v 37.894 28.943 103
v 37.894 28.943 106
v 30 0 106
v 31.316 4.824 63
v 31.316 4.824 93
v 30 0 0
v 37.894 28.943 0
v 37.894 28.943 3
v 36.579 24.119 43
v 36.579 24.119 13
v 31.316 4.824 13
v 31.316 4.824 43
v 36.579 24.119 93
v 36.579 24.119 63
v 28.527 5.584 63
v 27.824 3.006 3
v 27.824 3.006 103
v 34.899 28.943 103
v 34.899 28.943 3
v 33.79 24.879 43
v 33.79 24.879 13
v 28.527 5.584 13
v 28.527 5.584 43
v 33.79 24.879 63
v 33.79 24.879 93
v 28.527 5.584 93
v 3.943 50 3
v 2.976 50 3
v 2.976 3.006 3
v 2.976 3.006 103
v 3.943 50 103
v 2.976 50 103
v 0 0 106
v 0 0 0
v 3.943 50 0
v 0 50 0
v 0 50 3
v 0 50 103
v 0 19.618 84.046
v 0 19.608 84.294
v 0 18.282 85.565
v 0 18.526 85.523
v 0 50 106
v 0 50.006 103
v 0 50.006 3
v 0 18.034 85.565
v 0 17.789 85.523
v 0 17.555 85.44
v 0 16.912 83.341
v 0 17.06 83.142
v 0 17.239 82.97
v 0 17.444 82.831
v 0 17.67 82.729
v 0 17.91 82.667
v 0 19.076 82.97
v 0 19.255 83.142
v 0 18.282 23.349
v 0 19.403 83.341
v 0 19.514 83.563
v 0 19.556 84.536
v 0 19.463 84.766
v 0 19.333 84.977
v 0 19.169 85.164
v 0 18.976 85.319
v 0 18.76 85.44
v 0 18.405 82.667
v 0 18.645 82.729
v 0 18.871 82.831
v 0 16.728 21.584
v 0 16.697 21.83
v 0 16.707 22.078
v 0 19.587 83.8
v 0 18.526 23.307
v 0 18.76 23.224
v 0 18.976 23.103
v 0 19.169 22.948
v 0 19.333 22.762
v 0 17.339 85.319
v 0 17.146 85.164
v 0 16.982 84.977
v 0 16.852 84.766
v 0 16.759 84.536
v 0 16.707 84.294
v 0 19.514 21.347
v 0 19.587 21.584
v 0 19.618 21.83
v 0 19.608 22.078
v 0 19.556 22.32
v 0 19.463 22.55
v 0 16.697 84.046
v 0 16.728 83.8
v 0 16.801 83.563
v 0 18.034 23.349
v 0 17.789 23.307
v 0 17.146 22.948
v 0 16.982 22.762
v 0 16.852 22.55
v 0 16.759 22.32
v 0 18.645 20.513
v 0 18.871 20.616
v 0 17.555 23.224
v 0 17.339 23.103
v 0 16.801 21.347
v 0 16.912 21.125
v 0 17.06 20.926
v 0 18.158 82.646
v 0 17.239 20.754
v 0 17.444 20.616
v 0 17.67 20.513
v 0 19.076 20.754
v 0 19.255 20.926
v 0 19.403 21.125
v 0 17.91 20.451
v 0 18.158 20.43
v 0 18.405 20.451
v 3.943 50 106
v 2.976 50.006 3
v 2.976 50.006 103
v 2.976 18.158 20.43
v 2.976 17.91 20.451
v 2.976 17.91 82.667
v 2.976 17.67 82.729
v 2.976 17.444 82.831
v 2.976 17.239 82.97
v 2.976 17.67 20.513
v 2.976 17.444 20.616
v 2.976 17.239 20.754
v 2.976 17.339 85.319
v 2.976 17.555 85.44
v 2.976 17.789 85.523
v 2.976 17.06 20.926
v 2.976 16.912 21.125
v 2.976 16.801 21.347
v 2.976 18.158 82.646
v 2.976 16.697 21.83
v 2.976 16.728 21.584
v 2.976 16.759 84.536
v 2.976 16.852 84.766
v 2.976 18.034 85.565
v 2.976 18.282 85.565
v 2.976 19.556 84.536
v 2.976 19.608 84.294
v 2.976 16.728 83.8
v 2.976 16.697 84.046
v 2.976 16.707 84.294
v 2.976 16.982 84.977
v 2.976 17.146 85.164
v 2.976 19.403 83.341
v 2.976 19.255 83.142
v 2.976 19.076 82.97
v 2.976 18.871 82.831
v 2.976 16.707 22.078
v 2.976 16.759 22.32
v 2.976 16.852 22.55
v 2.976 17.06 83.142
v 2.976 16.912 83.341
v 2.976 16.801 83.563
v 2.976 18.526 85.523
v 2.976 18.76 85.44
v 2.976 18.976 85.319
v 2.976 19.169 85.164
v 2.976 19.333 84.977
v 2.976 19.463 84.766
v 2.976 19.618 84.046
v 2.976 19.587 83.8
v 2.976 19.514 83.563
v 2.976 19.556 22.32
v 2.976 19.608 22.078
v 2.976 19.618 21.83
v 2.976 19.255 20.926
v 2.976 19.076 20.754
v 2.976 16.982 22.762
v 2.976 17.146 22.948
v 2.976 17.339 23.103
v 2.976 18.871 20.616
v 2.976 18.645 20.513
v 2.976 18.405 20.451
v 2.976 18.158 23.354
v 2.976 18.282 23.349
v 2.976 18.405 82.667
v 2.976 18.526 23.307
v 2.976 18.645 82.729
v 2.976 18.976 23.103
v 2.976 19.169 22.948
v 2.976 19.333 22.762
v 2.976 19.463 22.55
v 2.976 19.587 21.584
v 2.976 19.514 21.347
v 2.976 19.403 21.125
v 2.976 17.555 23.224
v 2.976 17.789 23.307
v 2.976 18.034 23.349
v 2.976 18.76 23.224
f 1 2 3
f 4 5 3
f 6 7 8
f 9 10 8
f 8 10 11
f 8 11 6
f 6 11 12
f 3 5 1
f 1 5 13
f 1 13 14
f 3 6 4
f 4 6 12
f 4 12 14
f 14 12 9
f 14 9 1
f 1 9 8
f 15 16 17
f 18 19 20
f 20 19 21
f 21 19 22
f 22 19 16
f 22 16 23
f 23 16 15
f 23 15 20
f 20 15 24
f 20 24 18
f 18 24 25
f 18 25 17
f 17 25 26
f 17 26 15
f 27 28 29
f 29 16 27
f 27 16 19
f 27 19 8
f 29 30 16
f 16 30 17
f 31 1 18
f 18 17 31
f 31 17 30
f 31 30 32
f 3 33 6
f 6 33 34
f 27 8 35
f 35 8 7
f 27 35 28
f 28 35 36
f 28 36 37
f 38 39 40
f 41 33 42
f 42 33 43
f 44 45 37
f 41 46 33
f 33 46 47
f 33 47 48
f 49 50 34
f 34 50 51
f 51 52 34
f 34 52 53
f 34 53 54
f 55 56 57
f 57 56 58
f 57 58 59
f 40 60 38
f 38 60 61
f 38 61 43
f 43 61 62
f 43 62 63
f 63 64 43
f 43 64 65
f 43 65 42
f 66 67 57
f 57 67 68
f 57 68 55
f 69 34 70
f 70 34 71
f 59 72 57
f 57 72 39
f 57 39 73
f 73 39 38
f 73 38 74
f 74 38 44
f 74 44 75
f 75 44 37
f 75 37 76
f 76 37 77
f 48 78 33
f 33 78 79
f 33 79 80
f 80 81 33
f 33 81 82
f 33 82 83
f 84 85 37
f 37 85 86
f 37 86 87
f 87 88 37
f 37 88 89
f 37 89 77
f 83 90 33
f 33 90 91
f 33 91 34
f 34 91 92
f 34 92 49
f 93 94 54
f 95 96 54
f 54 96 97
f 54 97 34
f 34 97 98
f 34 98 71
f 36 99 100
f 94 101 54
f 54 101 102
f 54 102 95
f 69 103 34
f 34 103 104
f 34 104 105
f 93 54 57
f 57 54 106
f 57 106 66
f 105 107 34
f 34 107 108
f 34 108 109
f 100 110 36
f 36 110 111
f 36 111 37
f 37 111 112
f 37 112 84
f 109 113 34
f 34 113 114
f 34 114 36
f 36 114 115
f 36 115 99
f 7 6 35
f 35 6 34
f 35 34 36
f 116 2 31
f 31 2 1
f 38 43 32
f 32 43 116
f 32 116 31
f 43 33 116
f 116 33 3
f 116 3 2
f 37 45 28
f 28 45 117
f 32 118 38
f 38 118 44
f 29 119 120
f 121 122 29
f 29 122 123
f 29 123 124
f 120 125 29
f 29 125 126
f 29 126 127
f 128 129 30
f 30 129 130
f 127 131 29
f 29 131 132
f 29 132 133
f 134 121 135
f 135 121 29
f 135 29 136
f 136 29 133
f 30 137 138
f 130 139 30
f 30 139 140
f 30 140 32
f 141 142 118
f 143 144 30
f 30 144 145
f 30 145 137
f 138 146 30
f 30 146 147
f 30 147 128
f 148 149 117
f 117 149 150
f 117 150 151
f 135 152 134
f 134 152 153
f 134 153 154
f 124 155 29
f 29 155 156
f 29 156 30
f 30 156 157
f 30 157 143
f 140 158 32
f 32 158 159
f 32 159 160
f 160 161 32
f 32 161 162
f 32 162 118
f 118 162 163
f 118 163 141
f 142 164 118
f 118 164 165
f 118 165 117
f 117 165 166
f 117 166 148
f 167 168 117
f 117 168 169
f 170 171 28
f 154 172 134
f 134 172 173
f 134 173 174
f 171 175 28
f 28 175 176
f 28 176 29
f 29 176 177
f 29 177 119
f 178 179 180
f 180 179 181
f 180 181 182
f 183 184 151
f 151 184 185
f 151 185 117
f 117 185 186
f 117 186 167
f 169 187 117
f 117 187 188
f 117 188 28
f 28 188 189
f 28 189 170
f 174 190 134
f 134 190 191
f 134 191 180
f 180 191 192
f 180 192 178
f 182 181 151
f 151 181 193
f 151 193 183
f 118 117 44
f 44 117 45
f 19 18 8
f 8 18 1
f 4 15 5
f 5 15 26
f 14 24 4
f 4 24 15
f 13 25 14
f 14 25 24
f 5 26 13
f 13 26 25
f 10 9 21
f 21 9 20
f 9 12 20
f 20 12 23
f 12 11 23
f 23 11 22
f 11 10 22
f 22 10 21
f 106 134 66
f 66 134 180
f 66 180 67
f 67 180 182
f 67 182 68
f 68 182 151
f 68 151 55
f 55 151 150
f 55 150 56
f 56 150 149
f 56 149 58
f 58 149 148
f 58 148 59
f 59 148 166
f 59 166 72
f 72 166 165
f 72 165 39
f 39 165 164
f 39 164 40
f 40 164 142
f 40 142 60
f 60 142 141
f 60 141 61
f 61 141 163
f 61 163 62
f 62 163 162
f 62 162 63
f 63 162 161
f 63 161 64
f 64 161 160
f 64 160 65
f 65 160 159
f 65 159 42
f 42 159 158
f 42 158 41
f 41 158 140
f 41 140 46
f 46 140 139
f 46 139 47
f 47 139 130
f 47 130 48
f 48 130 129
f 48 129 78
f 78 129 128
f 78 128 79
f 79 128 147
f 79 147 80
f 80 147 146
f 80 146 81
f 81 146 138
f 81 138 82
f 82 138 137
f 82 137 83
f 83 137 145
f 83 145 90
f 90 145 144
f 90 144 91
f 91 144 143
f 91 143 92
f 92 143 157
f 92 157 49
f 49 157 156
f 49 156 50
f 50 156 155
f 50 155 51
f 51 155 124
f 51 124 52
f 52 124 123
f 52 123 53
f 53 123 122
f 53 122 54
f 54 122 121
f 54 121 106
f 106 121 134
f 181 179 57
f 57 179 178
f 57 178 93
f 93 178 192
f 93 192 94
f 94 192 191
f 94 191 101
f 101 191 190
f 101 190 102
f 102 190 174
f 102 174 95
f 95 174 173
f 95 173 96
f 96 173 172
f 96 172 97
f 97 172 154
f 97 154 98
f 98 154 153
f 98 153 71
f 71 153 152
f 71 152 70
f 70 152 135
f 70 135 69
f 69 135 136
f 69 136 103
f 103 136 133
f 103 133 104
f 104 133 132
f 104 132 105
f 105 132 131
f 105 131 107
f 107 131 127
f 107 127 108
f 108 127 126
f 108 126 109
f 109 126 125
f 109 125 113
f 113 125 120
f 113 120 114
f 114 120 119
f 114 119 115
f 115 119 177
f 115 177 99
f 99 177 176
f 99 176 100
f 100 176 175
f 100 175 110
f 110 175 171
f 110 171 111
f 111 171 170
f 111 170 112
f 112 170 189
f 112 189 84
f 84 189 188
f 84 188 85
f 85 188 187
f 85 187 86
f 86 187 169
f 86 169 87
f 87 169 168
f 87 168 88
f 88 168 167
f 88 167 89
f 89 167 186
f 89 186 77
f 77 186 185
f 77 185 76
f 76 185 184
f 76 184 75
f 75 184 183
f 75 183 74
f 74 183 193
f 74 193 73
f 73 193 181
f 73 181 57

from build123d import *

# Parameters (mm, degrees)
BOSS_EXTRU_1_DEPTH         = 3
BOSS_EXTRU_2_DEPTH         = 100
R_P_TITION_LIN_AIRE1_COUNT = 2
R_P_TITION_LIN_AIRE1_PITCH = 103
ESQUISSE5_W                = 2.97567345
ESQUISSE5_H                = 100
BOSS_EXTRU_3_DEPTH         = 47
ESQUISSE6_W                = 2.99565123
ESQUISSE6_H                = 100
ENL_V_MAT_EXTRU_1_REACH    = 125.839
ESQUISSE7_W                = 30
ESQUISSE7_H                = 20
ESQUISSE9_R                = 1.462141601
ENL_V_MAT_EXTRU_8_DEPTH    = 10


with BuildPart() as part:
    # Esquisse2 → Boss.-Extru.1 (new body)
    with BuildSketch(Plane.XY):
        Polygon((0, 0), (0, 50), (3.942801894, 50), (37.89429856, 28.942702884), (30, 0), align=None)
    boss_extru_1 = extrude(amount=BOSS_EXTRU_1_DEPTH)

    # Esquisse4 → Boss.-Extru.2 (add)
    with BuildSketch(Plane.XY.offset(3)):
        Polygon((0, 0), (0, 3.006117571), (30.819936884, 3.006117571), (30, 0), align=None)
    extrude(amount=BOSS_EXTRU_2_DEPTH)

    # Répétition linéaire1: Boss.-Extru.1 ×2
    with Locations(*[(0, 0, i * R_P_TITION_LIN_AIRE1_PITCH) for i in range(1, R_P_TITION_LIN_AIRE1_COUNT)]):
        add(boss_extru_1)

    # Esquisse5 → Boss.-Extru.3 (add)
    with BuildSketch(Plane(origin=(0, 3.006117571, 0), x_dir=(1, 0, 0), z_dir=(0, 1, 0))):
        with Locations((1.487836725, -53)):
            Rectangle(ESQUISSE5_W, ESQUISSE5_H)
    extrude(amount=BOSS_EXTRU_3_DEPTH)

    # Balayage1: sweep along a curve in space
    with BuildLine() as balayage1_path:
        Line((30.819936884, 3.006117571, 103), (37.89429856, 28.942702884, 103))
    # Esquisse6 → Balayage1 (sweep)
    with BuildSketch(Plane(origin=(0, 3.006117571, 0), x_dir=(1, 0, 0), z_dir=(0, 1, 0))):
        with Locations((29.322111269, -53)):
            Rectangle(ESQUISSE6_W, ESQUISSE6_H)
    sweep(path=balayage1_path.line)

    # Esquisse7 → Enlèv. mat.-Extru.1 (cut, up to next)
    with BuildSketch(Plane(origin=(27.922668341, -7.616077924, 0), x_dir=(0, 0, -1), z_dir=(0.9647567628041306, -0.2631432853479158, 0)), mode=Mode.PRIVATE) as enl_v_mat_extru_1_sk1:
        with Locations((-78, 22.89429856)):
            Rectangle(ESQUISSE7_W, ESQUISSE7_H)
    enl_v_mat_extru_1_tool1 = extrude(enl_v_mat_extru_1_sk1.sketch, amount=-ENL_V_MAT_EXTRU_1_REACH, mode=Mode.PRIVATE) & part.part
    enl_v_mat_extru_1 = enl_v_mat_extru_1_tool1.solids().sort_by_distance((33.947149, 14.471351, 78))[0]
    add(enl_v_mat_extru_1, mode=Mode.SUBTRACT)

    # Symétrie1: Enlèv. mat.-Extru.1 across plane
    add(enl_v_mat_extru_1.mirror(Plane.XY.offset(53)), mode=Mode.SUBTRACT)

    # Esquisse9 → Enlèv. mat.-Extru.8 (cut)
    with BuildSketch(Plane(origin=(2.97567345, 0, 0), x_dir=(0, 0, -1), z_dir=(1, 0, 0))):
        with Locations((-84.107906361, 18.157522719)):
            Circle(ESQUISSE9_R)
    enl_v_mat_extru_8 = extrude(amount=-ENL_V_MAT_EXTRU_8_DEPTH, mode=Mode.SUBTRACT)

    # Symétrie3: Enlèv. mat.-Extru.8 across plane
    add(enl_v_mat_extru_8.mirror(Plane.XY.offset(53)), mode=Mode.SUBTRACT)


solid = part.part
